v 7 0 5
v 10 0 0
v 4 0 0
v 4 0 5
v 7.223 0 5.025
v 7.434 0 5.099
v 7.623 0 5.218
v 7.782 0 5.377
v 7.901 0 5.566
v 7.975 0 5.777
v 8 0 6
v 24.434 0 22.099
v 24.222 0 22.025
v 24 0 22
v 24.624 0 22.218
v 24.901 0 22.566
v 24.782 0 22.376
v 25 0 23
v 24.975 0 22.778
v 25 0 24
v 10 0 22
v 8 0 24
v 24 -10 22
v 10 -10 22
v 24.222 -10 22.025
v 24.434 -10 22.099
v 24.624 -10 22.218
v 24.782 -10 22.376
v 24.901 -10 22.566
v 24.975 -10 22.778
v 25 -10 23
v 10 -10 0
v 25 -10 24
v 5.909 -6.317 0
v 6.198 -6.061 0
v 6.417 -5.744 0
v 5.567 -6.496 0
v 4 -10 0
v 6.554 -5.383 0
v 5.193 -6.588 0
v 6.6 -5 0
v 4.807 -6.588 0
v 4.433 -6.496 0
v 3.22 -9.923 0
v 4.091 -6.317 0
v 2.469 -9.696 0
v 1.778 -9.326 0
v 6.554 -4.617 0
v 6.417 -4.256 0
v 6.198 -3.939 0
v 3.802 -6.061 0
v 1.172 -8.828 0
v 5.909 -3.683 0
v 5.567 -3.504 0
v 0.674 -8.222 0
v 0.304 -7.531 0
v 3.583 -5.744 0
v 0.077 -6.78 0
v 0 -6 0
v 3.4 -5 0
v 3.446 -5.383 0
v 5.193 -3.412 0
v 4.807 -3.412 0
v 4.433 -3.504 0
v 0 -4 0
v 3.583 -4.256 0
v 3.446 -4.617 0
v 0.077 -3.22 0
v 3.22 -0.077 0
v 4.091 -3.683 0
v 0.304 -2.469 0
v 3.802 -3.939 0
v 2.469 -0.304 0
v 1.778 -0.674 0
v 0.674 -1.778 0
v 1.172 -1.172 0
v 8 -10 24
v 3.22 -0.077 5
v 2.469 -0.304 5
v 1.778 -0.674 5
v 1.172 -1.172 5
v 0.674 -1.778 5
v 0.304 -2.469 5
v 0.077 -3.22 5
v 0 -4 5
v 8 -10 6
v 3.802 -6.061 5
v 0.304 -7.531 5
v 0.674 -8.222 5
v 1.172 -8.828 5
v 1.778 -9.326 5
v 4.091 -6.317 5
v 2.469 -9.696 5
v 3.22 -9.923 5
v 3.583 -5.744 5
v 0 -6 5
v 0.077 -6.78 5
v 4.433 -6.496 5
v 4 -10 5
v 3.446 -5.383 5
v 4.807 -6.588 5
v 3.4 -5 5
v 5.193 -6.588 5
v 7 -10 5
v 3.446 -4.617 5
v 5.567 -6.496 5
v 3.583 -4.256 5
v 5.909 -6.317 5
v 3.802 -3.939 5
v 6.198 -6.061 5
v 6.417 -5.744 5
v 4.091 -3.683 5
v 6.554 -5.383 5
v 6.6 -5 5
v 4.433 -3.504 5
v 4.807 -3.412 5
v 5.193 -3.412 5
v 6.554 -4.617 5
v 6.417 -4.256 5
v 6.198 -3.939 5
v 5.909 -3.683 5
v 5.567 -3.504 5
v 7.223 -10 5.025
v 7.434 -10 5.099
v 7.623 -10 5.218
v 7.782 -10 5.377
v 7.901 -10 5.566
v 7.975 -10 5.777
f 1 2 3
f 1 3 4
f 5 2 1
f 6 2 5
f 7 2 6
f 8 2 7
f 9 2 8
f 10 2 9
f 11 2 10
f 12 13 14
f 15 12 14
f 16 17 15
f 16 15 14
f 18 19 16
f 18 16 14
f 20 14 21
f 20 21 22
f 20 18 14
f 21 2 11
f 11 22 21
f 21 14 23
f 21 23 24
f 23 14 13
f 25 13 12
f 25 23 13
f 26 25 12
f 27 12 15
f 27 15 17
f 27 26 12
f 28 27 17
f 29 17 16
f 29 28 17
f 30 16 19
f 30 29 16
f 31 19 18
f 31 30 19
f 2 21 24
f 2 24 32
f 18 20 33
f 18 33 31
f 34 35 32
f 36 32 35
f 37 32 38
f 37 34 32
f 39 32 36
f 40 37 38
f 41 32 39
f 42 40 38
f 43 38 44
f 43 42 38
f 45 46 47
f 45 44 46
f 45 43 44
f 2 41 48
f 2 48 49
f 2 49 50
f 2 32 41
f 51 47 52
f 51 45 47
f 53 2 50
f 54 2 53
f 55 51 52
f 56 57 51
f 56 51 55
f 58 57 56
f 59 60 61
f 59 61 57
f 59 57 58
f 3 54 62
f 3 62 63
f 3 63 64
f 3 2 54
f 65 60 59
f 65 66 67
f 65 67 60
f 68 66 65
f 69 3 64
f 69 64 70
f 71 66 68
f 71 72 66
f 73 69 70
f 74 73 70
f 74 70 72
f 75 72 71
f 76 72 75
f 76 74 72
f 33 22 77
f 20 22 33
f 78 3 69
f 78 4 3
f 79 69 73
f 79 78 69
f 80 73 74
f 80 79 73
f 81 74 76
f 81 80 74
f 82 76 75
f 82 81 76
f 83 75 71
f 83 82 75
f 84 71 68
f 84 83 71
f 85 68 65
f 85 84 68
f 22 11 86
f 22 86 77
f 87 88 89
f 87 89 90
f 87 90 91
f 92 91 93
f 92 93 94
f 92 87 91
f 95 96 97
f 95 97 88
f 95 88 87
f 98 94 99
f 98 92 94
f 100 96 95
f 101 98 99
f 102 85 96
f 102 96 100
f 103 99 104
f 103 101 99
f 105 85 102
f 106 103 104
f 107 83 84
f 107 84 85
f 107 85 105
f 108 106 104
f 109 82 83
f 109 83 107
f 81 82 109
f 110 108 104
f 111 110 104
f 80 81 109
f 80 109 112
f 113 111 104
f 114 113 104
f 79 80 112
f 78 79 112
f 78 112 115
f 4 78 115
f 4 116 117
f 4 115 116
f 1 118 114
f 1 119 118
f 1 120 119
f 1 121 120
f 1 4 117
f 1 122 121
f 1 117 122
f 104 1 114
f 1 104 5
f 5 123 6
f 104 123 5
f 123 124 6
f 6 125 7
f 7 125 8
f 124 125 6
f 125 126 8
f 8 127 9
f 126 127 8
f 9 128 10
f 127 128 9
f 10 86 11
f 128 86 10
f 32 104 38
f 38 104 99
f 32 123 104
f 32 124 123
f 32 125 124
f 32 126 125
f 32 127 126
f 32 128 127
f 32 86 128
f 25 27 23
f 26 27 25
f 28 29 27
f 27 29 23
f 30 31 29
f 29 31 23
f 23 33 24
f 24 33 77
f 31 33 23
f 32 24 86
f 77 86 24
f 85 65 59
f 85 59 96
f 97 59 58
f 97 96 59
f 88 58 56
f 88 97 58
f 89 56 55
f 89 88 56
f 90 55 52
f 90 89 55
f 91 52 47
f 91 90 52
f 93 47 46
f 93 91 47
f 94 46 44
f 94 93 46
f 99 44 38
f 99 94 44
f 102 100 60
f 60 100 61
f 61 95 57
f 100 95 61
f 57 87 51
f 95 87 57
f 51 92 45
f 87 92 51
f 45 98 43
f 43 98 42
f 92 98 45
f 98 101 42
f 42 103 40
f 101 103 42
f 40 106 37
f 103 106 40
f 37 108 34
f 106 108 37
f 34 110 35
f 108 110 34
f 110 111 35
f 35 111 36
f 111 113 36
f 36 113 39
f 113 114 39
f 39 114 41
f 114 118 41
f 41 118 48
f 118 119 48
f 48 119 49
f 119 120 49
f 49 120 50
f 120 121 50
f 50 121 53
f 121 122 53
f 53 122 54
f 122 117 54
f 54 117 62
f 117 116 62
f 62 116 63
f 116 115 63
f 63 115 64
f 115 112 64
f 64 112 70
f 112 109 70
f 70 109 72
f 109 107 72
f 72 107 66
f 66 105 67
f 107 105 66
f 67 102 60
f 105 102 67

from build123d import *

# Parameters (mm, degrees)
PAD_DEPTH    = 10
SKETCH001_R  = 1.6
POCKET_DEPTH = 5
FILLET_R     = 1
FILLET001_R  = 4
FILLET002_R  = 1


with BuildPart() as part:
    # Sketch → Pad (new body)
    with BuildSketch(Plane.XZ):
        Polygon((0, 0), (0, 5), (8, 5), (8, 24), (25, 24), (25, 22), (10, 22), (10, 0), align=None)
    extrude(amount=PAD_DEPTH)

    # Sketch001 (on Face2 of Pad) → Pocket (cut)
    with BuildSketch(Plane(origin=(0, 0, 5), x_dir=(-1, 0, 0), z_dir=(0, 0, 1))):
        with Locations((-5, 5)):
            Circle(SKETCH001_R)
    extrude(amount=-POCKET_DEPTH, mode=Mode.SUBTRACT)

    # Fillet
    fillet_edges = [part.edges().sort_by_distance(p)[0] for p in [
        (8, -5, 5),
    ]]
    fillet(fillet_edges, radius=FILLET_R)

    # Fillet001
    fillet001_edges = [part.edges().sort_by_distance(p)[0] for p in [
        (0, 0, 2.5),
        (0, -10, 2.5),
    ]]
    fillet(fillet001_edges, radius=FILLET001_R)

    # Fillet002
    fillet002_edges = [part.edges().sort_by_distance(p)[0] for p in [
        (25, -5, 22),
    ]]
    fillet(fillet002_edges, radius=FILLET002_R)


solid = part.part
